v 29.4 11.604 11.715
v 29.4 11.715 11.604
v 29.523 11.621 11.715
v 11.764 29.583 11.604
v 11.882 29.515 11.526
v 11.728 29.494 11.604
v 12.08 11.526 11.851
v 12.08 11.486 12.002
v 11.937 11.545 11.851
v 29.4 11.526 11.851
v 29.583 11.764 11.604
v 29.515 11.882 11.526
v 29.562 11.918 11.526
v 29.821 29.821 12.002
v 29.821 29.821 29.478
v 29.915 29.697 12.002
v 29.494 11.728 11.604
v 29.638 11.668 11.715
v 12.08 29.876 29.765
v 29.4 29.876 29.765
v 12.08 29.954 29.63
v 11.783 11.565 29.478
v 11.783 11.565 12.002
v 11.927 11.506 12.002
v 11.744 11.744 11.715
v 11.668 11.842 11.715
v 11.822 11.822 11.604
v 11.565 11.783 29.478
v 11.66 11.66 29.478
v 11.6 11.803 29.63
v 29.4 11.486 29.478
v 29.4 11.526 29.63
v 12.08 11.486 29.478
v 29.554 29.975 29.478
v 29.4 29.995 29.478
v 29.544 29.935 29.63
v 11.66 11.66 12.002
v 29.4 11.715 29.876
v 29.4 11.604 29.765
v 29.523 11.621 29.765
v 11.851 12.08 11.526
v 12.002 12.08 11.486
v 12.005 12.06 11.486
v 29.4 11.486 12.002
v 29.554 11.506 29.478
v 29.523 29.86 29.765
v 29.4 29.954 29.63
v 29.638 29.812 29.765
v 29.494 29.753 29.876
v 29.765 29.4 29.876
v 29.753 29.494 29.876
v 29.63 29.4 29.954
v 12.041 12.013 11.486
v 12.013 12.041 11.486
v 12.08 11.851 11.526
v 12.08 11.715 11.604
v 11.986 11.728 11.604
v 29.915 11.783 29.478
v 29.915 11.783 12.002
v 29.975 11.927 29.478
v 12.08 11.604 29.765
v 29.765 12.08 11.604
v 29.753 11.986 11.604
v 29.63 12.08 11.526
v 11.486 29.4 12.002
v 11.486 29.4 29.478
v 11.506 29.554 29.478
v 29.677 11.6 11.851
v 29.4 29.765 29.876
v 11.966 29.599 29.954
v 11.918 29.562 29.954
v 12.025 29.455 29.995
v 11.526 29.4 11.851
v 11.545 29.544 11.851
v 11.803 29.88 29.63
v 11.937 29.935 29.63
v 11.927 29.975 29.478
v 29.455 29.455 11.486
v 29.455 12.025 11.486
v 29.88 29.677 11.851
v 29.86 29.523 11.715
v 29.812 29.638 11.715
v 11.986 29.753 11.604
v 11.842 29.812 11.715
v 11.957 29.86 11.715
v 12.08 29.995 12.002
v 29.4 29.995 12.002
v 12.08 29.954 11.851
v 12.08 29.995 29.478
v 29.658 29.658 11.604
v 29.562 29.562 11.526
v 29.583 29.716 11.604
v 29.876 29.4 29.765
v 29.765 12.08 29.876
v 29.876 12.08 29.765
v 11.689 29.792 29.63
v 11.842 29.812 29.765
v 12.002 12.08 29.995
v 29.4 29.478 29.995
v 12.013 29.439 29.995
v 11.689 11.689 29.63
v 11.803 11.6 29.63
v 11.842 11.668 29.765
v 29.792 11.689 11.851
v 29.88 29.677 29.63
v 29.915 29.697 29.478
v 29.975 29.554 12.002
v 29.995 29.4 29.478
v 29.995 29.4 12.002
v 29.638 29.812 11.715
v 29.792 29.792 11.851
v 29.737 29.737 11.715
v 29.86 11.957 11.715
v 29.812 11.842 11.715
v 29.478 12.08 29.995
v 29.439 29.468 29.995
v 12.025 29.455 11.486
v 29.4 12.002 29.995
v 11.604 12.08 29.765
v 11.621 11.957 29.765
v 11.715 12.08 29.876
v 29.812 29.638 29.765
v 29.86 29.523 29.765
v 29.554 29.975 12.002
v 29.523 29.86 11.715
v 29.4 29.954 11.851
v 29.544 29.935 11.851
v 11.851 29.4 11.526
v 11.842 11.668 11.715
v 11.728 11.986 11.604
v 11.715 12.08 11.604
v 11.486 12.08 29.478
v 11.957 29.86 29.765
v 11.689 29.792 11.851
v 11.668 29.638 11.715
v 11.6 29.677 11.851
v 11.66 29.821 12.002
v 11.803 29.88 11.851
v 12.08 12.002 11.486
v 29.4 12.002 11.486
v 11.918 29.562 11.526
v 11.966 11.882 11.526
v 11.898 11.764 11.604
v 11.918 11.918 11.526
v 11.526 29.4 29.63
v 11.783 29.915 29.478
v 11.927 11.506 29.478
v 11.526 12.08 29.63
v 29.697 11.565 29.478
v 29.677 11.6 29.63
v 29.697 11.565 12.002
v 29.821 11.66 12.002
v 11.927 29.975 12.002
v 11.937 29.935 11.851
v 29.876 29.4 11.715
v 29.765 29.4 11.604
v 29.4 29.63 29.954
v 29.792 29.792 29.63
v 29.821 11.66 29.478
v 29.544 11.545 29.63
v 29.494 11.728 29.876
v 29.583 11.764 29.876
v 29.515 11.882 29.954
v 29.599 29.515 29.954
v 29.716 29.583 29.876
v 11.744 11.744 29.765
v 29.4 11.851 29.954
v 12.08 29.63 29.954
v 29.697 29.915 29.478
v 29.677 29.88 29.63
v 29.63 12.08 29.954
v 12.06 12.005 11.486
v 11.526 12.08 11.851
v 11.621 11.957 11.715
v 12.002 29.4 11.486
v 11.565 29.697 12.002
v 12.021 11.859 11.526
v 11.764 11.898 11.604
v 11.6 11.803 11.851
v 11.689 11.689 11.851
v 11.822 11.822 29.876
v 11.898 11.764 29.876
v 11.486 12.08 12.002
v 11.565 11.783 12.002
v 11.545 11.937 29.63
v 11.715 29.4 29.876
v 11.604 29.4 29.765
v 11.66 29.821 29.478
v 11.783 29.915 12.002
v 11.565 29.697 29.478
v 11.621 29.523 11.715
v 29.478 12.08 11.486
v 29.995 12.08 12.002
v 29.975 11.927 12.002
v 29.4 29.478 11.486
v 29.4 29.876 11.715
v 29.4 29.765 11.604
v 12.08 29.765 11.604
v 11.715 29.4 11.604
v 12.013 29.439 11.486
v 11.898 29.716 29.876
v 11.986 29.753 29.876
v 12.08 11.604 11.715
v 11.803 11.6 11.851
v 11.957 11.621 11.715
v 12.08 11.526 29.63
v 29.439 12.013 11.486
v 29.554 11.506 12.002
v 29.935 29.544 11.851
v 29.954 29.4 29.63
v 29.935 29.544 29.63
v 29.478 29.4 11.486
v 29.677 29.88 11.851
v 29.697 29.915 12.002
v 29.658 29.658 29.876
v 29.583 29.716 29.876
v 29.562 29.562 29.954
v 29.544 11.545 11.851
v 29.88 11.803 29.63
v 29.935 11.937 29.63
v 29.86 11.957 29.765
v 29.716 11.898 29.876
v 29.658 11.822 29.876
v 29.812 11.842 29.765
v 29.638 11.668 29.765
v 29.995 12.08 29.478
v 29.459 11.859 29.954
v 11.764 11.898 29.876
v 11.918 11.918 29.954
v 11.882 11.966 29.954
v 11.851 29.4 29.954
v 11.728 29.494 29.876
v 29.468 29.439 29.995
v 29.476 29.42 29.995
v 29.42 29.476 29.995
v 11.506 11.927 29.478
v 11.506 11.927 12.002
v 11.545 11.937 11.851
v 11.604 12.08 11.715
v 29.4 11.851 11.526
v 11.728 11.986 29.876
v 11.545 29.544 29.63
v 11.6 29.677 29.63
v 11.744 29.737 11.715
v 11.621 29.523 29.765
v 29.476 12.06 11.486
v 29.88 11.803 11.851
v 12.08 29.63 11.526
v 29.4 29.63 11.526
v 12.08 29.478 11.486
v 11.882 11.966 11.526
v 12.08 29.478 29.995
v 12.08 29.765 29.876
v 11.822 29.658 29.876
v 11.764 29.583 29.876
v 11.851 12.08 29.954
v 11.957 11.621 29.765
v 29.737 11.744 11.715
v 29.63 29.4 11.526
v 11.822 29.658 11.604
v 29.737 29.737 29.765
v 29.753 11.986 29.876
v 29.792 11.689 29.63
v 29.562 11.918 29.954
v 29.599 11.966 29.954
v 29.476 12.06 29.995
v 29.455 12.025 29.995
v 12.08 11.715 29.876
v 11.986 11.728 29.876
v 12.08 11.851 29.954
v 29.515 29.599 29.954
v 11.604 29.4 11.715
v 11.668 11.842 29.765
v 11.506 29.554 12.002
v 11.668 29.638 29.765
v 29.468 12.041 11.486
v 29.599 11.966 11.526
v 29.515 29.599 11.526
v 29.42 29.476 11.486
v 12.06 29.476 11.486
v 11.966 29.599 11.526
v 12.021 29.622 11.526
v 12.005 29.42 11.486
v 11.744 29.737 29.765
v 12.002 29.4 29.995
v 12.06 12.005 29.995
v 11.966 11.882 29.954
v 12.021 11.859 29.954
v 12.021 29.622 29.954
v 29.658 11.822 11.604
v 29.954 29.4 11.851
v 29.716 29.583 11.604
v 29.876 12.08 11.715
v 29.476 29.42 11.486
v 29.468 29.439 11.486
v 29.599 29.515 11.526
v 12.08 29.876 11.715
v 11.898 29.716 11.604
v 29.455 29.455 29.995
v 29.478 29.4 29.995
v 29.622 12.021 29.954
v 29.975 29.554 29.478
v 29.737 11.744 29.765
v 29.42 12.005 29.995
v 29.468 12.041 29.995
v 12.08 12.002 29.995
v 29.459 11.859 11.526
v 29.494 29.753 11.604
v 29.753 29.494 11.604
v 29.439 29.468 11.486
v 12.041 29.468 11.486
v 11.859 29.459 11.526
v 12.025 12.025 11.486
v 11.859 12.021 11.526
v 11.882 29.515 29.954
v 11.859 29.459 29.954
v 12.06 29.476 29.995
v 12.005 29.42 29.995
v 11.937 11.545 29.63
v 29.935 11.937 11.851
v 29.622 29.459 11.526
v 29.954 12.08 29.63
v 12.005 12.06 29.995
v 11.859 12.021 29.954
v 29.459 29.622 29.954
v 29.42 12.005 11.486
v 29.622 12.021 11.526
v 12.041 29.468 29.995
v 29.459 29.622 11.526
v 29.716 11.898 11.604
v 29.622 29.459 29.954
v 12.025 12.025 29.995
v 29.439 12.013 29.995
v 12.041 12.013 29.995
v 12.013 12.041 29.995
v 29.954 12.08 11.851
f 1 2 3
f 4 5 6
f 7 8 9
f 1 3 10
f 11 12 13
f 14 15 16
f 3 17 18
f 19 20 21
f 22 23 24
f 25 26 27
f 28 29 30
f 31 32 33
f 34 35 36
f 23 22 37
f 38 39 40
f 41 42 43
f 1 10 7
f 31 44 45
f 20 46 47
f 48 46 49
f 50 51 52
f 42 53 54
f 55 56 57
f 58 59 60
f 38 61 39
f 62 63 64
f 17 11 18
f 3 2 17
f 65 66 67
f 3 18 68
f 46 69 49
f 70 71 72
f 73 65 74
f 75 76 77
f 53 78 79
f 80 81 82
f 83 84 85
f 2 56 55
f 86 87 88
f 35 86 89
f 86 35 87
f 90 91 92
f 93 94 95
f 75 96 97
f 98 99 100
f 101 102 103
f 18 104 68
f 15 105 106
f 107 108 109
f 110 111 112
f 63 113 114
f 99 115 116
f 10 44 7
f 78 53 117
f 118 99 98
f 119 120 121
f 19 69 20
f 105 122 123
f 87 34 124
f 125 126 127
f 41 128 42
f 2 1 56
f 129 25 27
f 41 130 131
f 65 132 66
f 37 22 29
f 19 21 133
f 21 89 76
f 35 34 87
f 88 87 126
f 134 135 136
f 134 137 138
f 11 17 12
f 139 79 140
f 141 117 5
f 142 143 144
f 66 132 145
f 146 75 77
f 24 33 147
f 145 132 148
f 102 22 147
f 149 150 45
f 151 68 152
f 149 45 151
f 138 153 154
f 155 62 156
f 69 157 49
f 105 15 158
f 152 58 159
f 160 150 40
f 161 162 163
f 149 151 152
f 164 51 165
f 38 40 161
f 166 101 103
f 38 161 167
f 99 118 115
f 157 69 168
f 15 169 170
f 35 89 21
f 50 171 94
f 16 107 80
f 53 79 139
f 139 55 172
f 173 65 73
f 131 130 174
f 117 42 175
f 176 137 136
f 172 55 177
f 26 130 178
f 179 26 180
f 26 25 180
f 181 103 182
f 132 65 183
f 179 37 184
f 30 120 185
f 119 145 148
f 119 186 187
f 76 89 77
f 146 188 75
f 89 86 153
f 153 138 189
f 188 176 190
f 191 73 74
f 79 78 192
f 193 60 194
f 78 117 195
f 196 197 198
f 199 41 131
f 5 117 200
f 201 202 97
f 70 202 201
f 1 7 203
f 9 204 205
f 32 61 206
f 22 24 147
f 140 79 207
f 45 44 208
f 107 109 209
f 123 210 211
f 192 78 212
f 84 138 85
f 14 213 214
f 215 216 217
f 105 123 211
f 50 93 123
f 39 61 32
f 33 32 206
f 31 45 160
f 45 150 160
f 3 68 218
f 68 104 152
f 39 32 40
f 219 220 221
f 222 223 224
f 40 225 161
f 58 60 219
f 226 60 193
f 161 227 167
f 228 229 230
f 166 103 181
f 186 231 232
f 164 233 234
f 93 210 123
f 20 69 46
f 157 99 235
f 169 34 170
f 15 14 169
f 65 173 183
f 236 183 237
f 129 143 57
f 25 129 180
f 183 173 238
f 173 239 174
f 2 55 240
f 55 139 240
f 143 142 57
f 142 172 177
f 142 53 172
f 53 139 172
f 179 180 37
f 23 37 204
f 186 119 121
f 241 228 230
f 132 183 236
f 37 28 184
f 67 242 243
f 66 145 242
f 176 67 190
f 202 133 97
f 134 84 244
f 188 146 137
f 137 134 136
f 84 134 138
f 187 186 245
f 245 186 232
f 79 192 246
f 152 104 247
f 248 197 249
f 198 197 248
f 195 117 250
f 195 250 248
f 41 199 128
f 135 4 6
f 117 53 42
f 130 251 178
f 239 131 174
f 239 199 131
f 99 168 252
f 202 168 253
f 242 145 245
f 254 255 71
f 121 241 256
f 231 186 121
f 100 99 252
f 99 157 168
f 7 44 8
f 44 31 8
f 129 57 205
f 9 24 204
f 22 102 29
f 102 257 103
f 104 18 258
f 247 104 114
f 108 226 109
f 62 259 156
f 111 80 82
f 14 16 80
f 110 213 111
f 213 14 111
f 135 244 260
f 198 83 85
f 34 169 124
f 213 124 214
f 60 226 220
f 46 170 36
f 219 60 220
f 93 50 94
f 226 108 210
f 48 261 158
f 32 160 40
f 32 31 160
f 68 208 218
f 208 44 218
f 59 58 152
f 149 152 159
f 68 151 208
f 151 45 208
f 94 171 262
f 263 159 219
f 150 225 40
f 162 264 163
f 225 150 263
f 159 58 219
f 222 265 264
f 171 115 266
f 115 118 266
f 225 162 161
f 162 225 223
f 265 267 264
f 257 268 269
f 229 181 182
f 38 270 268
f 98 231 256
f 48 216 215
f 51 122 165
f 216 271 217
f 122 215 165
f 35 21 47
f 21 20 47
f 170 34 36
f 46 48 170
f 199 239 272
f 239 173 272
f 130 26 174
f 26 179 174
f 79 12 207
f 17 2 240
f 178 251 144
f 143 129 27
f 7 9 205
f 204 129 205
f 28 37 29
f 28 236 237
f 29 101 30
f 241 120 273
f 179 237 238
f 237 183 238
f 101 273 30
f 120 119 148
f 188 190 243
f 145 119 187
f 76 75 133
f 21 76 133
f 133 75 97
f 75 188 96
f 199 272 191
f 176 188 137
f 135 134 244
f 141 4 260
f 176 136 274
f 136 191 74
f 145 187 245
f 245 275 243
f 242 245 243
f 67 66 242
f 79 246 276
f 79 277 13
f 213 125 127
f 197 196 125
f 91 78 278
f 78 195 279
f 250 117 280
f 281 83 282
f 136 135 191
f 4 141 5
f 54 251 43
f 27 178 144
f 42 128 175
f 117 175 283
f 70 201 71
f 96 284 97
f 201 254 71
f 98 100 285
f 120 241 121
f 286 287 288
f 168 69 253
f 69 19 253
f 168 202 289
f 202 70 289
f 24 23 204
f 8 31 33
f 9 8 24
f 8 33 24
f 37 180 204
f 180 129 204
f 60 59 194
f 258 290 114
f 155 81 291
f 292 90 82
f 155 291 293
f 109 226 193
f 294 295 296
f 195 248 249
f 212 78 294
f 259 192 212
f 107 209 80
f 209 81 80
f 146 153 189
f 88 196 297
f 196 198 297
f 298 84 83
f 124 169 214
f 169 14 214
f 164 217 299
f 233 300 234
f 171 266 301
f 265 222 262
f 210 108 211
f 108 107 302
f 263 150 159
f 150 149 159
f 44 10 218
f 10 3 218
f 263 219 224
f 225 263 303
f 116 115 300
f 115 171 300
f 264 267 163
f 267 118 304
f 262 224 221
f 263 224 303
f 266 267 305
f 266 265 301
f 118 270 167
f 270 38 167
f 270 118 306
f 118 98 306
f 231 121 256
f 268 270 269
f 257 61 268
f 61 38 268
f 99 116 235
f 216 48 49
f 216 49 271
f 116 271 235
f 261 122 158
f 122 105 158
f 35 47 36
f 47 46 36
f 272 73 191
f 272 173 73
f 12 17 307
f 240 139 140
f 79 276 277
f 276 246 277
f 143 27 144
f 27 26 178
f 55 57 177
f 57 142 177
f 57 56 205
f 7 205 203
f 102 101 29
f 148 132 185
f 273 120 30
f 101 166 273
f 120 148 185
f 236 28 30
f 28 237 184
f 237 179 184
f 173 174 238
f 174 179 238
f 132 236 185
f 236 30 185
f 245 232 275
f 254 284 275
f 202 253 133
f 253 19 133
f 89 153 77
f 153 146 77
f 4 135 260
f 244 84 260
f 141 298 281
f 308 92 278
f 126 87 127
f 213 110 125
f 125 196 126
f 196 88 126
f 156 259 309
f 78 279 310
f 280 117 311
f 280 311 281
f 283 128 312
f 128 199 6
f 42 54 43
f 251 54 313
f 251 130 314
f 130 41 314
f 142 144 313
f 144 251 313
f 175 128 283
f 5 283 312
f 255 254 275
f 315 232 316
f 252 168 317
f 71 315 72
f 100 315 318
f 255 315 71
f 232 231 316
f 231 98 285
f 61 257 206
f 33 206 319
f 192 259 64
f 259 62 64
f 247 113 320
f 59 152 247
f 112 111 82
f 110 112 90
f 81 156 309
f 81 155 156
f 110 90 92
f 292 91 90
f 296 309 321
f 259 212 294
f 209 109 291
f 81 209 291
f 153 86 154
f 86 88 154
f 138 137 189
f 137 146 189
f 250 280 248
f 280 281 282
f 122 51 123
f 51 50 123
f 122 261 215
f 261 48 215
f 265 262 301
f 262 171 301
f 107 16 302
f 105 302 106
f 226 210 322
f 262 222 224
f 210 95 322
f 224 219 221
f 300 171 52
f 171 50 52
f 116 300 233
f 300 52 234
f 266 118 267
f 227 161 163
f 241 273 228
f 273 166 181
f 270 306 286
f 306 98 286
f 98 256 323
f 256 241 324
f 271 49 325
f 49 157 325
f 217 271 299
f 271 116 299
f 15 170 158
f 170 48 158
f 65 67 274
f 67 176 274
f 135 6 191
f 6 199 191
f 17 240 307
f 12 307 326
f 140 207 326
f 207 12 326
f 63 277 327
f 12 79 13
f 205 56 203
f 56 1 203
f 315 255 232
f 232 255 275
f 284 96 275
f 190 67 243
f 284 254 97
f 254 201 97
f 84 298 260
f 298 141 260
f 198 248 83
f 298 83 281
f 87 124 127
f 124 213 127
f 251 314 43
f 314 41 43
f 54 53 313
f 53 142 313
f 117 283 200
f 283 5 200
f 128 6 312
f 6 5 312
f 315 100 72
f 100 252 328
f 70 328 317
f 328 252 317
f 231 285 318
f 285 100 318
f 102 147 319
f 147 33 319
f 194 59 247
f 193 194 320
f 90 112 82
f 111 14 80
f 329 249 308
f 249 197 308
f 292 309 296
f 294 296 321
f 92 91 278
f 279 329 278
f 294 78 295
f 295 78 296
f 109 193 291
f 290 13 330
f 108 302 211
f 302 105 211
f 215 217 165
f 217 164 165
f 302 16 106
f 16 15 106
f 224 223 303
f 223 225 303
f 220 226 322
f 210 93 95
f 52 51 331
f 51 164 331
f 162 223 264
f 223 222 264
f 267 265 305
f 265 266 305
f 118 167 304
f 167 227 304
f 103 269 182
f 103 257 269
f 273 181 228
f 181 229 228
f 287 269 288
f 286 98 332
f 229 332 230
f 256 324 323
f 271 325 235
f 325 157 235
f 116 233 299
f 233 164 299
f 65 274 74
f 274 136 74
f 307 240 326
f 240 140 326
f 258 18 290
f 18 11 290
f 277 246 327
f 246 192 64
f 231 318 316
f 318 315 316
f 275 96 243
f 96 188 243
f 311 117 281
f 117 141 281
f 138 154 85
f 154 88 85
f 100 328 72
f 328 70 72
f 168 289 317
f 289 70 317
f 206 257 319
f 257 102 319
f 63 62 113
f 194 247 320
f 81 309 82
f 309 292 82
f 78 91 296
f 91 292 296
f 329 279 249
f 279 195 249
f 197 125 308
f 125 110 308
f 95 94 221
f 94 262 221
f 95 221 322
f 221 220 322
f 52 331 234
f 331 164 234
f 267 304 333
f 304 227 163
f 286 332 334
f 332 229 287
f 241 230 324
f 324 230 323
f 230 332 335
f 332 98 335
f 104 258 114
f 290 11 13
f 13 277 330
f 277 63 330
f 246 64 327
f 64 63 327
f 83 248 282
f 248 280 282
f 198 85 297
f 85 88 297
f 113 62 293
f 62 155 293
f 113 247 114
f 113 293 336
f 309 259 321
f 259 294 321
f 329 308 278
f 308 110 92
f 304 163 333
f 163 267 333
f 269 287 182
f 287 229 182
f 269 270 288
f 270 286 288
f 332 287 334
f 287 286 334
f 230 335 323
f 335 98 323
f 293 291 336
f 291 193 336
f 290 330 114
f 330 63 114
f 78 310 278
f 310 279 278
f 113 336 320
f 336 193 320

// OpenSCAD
// file: def.scad
round_radius = 0.6;
sticker_margin = 1.2;
sticker_round_radius = 0.4;
cube_size = 60;
disk_height = 12.5;
disk_radius = cube_size / 2;
base_size = cube_size / 2 / sqrt(10 + 7 * sqrt(2));
cut1_dis = base_size * (1 + sqrt(2) / 2);
cut2_dis = cube_size / 2;
inf = cube_size * 10;

module _cube() {
    cube([cube_size - round_radius * 2, cube_size - round_radius * 2, cube_size - round_radius * 2], center = true);
}

module _disk() {
    translate([0, 0, cube_size / 2 + disk_height / 2])
        cylinder(r = disk_radius - round_radius, h = disk_height - round_radius * 2, center = true, $fn = 96);
}

module _int_cut1() {
    translate([-inf, -inf, cut1_dis + round_radius])
        cube([inf * 2, inf * 2, inf]);
}

module _dif_cut1() {
    translate([-inf, -inf, cut1_dis - round_radius])
        cube([inf * 2, inf * 2, inf]);
}

module _sticker_int_cut1() {
    translate([-inf, -inf, cut1_dis + sticker_margin])
        cube([inf * 2, inf * 2, inf]);
}

module _sticker_dif_cut1() {
    translate([-inf, -inf, cut1_dis - sticker_margin])
        cube([inf * 2, inf * 2, inf]);
}

module _int_cut2() {
    translate([-inf, -inf, cut2_dis + round_radius])
        cube([inf * 2, inf * 2, inf]);
}

module _dif_cut2() {
    translate([-inf, -inf, cut2_dis - round_radius])
        cube([inf * 2, inf * 2, inf]);
}

module _sticker_int_cut2() {
    translate([-inf, -inf, cut2_dis + sticker_margin])
        cube([inf * 2, inf * 2, inf]);
}

module _sticker_dif_cut2() {
    translate([-inf, -inf, cut2_dis - sticker_margin])
        cube([inf * 2, inf * 2, inf]);
}

module _sticker_cube() {
    translate([-cube_size / 2 + sticker_margin, -cube_size / 2 + sticker_margin, cube_size / 2 - 0.05])
        cube([cube_size - sticker_margin * 2, cube_size - sticker_margin * 2, 0.1]);
}

module _sticker_disk() {
    translate([0, 0, cube_size / 2 + disk_height - 0.05])
        cylinder(r = disk_radius - sticker_margin, h = 0.1, center = true, $fn = 96);
}
// main file
include <def.scad>

module block_222() {
    minkowski() {
        difference() {
            intersection() {
                _cube();
                intersection_for (vec = [[0, 0, 0], [-90, 0, 0], [0, 90, 0]])
                    rotate(vec)
                        _int_cut1();
            }
        }
        sphere(r = round_radius, $fn = 24);
    }
}

block_222();
